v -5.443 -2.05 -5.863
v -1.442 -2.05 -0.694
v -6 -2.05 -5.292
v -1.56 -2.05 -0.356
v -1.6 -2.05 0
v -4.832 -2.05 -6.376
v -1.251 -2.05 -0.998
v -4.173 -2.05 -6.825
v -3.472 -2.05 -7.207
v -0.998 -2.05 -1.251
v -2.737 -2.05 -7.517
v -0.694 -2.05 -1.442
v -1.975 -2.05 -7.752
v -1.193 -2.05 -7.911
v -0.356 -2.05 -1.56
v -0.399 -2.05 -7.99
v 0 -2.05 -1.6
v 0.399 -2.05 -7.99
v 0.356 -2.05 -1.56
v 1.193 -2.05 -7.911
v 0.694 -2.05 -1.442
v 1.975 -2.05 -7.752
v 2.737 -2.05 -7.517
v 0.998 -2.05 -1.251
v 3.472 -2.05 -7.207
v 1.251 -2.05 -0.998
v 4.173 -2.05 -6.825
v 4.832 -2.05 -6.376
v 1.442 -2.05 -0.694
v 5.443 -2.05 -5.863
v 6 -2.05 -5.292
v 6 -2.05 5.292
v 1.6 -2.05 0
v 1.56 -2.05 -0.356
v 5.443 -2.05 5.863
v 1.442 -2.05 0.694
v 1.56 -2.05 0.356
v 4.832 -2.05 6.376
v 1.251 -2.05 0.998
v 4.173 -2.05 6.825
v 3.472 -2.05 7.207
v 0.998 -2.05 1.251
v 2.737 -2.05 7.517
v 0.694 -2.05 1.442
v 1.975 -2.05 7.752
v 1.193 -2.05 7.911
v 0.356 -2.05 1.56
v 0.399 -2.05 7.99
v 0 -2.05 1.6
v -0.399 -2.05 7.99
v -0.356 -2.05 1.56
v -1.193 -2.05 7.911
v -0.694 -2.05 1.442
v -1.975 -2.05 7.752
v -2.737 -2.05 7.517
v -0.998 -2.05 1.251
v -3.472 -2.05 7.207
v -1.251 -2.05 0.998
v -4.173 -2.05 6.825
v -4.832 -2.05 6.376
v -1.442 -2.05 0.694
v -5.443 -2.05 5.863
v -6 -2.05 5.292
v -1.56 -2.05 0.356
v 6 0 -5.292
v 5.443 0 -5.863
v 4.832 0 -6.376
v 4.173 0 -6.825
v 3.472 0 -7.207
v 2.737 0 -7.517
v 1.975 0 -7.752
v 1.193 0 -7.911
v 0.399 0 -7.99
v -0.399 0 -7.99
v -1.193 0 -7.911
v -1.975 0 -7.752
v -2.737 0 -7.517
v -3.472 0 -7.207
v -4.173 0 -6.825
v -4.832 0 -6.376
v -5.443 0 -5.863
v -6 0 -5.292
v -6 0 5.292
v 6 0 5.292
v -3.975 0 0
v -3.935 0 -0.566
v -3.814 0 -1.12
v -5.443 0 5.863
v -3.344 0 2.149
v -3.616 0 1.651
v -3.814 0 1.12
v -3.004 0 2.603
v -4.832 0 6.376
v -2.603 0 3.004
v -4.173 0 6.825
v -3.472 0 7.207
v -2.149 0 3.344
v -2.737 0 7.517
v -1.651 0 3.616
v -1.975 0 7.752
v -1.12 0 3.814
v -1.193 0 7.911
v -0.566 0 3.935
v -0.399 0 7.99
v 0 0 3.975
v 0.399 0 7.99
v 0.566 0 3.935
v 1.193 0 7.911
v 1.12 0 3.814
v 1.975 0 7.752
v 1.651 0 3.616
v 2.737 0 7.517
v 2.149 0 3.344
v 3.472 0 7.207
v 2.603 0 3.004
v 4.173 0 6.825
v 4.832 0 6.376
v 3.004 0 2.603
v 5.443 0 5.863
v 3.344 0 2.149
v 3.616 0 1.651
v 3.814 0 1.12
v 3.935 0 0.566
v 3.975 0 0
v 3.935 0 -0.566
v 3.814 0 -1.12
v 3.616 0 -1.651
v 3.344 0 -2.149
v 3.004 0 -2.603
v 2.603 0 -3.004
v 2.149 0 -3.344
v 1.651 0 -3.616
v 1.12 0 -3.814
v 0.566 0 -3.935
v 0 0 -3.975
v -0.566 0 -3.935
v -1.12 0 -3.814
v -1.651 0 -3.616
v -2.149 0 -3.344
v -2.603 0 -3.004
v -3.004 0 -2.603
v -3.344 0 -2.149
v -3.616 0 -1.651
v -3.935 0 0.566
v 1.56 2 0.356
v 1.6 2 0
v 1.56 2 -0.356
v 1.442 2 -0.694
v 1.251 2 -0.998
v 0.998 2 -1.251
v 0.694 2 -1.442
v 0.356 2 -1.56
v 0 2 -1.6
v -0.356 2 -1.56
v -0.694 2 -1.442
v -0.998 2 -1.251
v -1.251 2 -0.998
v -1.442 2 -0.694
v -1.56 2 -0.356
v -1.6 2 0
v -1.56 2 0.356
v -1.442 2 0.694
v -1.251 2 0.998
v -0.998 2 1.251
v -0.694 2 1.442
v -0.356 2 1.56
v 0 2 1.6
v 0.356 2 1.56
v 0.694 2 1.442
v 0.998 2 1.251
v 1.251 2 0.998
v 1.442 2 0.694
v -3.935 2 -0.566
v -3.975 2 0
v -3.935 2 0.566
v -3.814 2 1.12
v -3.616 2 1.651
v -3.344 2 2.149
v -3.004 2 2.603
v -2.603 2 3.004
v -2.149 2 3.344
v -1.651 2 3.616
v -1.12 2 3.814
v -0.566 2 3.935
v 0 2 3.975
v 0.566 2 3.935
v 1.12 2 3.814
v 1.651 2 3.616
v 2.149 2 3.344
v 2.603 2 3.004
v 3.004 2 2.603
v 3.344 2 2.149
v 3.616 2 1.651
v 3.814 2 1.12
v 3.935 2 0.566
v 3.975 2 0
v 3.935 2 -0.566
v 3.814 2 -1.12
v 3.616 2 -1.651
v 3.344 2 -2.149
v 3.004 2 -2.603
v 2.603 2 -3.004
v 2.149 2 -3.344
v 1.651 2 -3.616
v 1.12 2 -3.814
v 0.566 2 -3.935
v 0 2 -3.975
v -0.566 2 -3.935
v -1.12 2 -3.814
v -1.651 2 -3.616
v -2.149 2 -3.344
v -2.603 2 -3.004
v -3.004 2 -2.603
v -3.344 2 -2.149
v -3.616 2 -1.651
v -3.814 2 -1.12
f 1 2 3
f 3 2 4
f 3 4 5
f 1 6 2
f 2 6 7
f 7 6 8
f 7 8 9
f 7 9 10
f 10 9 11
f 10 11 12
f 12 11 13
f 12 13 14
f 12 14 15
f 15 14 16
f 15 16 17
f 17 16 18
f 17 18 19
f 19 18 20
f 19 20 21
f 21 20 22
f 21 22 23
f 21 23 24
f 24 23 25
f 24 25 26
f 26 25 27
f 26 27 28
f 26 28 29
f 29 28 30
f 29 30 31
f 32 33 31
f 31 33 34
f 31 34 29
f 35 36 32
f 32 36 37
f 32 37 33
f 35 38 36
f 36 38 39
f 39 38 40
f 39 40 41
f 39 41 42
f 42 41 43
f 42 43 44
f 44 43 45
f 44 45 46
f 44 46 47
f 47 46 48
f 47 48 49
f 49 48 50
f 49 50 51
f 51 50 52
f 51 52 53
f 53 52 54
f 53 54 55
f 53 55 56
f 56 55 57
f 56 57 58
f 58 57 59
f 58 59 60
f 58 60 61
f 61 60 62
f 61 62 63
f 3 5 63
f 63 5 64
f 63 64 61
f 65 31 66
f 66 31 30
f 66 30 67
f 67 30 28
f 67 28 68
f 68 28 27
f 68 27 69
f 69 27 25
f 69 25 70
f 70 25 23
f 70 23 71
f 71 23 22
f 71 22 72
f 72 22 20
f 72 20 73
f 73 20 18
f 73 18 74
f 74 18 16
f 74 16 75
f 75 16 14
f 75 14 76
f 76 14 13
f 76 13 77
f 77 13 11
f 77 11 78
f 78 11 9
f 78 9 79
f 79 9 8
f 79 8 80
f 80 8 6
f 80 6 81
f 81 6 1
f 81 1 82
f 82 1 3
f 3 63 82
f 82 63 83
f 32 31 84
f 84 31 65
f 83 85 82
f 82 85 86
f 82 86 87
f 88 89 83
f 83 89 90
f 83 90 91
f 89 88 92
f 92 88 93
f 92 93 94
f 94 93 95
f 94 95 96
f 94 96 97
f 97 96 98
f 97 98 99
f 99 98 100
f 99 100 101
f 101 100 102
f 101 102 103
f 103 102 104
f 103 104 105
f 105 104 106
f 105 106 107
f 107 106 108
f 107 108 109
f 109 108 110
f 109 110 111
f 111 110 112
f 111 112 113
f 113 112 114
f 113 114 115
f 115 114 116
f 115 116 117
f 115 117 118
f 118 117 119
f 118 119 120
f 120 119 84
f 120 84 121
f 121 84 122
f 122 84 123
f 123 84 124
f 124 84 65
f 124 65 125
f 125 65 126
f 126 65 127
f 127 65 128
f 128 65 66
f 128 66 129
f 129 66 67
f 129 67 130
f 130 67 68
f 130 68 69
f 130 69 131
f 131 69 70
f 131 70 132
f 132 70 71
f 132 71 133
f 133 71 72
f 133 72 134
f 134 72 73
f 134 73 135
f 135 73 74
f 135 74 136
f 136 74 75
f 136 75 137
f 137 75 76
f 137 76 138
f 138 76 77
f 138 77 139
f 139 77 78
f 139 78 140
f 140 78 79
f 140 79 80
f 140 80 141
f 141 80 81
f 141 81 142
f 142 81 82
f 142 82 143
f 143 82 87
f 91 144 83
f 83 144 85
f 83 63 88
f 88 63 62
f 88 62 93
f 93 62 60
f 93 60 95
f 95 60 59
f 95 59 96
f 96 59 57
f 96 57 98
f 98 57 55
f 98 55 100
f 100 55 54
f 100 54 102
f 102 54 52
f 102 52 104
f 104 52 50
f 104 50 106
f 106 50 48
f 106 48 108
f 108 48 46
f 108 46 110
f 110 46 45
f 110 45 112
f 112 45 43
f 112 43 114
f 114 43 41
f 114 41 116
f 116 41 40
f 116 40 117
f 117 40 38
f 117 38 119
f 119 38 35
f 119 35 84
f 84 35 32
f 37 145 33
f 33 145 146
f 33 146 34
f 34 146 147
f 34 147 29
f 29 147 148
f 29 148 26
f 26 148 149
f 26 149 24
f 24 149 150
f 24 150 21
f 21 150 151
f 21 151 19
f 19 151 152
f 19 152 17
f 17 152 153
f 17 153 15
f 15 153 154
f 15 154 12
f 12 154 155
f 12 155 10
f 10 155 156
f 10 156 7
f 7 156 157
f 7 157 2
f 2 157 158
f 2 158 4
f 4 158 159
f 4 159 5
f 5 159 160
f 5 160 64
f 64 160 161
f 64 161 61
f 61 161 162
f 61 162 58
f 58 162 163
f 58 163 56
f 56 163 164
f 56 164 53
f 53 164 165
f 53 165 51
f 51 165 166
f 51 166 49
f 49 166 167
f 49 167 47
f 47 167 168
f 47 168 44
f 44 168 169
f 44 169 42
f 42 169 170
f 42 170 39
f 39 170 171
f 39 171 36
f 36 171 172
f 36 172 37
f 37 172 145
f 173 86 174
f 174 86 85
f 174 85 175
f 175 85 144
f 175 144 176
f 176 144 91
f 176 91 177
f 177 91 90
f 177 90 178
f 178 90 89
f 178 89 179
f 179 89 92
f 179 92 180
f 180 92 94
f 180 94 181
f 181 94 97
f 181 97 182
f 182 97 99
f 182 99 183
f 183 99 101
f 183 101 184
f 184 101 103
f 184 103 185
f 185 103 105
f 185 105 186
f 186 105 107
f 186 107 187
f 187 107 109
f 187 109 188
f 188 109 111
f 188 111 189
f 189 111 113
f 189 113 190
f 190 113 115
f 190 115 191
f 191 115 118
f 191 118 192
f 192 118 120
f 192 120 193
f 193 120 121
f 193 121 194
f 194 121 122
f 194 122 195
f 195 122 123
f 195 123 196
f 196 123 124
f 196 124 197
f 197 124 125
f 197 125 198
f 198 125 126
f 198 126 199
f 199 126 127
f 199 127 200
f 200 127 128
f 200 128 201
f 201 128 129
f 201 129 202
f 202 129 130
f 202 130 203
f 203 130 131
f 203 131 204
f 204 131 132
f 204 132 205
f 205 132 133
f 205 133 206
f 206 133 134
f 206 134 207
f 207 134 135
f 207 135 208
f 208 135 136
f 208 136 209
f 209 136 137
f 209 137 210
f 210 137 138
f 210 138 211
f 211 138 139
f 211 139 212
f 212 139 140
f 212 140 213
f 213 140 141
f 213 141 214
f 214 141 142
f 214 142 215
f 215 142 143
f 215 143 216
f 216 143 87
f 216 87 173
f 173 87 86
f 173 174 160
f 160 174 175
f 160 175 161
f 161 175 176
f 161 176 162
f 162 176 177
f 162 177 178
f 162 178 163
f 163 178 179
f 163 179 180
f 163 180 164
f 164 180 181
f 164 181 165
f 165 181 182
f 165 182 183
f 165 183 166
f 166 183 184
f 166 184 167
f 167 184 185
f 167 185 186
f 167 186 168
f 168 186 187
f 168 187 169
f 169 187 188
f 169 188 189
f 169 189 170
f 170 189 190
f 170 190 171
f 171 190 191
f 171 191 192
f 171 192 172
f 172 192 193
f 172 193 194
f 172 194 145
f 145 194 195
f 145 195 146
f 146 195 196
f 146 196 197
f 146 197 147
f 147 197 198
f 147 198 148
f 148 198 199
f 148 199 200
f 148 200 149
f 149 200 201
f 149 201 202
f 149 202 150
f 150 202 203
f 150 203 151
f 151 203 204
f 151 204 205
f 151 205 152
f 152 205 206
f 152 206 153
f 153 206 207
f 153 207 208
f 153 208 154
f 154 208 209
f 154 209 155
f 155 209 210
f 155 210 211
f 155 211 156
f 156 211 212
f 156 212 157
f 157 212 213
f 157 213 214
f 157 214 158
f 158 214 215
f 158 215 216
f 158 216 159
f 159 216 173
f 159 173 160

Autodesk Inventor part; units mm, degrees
ref_plane "YZ Plane" through (0, 0, 0) normal (1, 0, 0) x (0, 1, 0)
ref_plane "XZ Plane" through (0, 0, 0) normal (0, 1, 0) x (-1, 0, 0)
ref_plane "XY Plane" through (0, 0, 0) normal (0, 0, 1) x (1, 0, 0)
sketch "Sketch1" plane through (0, 0, 0) normal (0, 1, 0) x (-1, 0, 0)
  circle A0 centre (0, 0) radius 3.975
  circle A1 centre (0, 0) radius 1.6
  circle A2 centre (0, 0) radius 8
  dimension "d0" = 7.95
  dimension "d1" = 3.2
  dimension "d2" = 16
extrude "Extrusion1" add sketch "Sketch1" along normal blind 2 contours A0
extrude "Extrusion2" add sketch "Sketch1" against normal blind 3.8 contours A0 | A2
sketch "Sketch3" plane through (0, -3.8, 0) normal (0, -1, 0) x (1, 0, 0)
  line L0 (8, 0) -> (6, 0) construction
  line L1 (6, 0) -> (6, -6.7165)
  line L2 (6, 0) -> (6, 8)
  line L3 (6, 8) -> (11.3207, 8)
  line L4 (11.3207, 8) -> (13.7407, -4.0569)
  line L5 (13.7407, -4.0569) -> (10.7642, -6.413)
  line L6 (10.7642, -6.413) -> (6, -6.7165)
  dimension "d11" = 2
extrude "Extrusion4" cut sketch "Sketch3" against normal blind 6.75
mirror "Mirror1" about plane through (0, 0, 0) normal (1, 0, 0) of "Extrusion4"
sketch "Sketch4" plane through (0, -3.8, 0) normal (0, -1, 0) x (1, 0, 0)
  line L0 (-6, 5.2915) -> (-6, -5.2915) projected
  arc A0 (-6, -5.2915) -> (6, -5.2915) centre (0, 0) ccw projected
  line L1 (6, -5.2915) -> (6, 5.2915) projected
  arc A1 (6, 5.2915) -> (-6, 5.2915) centre (0, 0) ccw projected
  circle A2 centre (0, 0) radius 1.6 projected
extrude "Extrusion5" cut sketch "Sketch4" against normal blind 1.75
properties part number "C-Channel Spacer M3"
